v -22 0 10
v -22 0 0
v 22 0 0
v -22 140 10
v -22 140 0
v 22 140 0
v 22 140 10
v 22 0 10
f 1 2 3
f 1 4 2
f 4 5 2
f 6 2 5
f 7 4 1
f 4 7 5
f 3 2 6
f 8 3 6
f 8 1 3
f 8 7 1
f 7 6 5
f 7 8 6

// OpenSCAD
// M21 wrench
// Geometry follows the holder clearance profile. Its dimensions describe the pocket used in the source design. Physical tool dimensions and fit have yet to be measured.
// Units: mm
$fn = 64;
union() {
    translate([0, 0, 0]) rotate([0, 0, 0])
        linear_extrude(height=10) polygon(points=[[-22, 0], [-22, 140], [22, 140], [22, 0]]);
}
